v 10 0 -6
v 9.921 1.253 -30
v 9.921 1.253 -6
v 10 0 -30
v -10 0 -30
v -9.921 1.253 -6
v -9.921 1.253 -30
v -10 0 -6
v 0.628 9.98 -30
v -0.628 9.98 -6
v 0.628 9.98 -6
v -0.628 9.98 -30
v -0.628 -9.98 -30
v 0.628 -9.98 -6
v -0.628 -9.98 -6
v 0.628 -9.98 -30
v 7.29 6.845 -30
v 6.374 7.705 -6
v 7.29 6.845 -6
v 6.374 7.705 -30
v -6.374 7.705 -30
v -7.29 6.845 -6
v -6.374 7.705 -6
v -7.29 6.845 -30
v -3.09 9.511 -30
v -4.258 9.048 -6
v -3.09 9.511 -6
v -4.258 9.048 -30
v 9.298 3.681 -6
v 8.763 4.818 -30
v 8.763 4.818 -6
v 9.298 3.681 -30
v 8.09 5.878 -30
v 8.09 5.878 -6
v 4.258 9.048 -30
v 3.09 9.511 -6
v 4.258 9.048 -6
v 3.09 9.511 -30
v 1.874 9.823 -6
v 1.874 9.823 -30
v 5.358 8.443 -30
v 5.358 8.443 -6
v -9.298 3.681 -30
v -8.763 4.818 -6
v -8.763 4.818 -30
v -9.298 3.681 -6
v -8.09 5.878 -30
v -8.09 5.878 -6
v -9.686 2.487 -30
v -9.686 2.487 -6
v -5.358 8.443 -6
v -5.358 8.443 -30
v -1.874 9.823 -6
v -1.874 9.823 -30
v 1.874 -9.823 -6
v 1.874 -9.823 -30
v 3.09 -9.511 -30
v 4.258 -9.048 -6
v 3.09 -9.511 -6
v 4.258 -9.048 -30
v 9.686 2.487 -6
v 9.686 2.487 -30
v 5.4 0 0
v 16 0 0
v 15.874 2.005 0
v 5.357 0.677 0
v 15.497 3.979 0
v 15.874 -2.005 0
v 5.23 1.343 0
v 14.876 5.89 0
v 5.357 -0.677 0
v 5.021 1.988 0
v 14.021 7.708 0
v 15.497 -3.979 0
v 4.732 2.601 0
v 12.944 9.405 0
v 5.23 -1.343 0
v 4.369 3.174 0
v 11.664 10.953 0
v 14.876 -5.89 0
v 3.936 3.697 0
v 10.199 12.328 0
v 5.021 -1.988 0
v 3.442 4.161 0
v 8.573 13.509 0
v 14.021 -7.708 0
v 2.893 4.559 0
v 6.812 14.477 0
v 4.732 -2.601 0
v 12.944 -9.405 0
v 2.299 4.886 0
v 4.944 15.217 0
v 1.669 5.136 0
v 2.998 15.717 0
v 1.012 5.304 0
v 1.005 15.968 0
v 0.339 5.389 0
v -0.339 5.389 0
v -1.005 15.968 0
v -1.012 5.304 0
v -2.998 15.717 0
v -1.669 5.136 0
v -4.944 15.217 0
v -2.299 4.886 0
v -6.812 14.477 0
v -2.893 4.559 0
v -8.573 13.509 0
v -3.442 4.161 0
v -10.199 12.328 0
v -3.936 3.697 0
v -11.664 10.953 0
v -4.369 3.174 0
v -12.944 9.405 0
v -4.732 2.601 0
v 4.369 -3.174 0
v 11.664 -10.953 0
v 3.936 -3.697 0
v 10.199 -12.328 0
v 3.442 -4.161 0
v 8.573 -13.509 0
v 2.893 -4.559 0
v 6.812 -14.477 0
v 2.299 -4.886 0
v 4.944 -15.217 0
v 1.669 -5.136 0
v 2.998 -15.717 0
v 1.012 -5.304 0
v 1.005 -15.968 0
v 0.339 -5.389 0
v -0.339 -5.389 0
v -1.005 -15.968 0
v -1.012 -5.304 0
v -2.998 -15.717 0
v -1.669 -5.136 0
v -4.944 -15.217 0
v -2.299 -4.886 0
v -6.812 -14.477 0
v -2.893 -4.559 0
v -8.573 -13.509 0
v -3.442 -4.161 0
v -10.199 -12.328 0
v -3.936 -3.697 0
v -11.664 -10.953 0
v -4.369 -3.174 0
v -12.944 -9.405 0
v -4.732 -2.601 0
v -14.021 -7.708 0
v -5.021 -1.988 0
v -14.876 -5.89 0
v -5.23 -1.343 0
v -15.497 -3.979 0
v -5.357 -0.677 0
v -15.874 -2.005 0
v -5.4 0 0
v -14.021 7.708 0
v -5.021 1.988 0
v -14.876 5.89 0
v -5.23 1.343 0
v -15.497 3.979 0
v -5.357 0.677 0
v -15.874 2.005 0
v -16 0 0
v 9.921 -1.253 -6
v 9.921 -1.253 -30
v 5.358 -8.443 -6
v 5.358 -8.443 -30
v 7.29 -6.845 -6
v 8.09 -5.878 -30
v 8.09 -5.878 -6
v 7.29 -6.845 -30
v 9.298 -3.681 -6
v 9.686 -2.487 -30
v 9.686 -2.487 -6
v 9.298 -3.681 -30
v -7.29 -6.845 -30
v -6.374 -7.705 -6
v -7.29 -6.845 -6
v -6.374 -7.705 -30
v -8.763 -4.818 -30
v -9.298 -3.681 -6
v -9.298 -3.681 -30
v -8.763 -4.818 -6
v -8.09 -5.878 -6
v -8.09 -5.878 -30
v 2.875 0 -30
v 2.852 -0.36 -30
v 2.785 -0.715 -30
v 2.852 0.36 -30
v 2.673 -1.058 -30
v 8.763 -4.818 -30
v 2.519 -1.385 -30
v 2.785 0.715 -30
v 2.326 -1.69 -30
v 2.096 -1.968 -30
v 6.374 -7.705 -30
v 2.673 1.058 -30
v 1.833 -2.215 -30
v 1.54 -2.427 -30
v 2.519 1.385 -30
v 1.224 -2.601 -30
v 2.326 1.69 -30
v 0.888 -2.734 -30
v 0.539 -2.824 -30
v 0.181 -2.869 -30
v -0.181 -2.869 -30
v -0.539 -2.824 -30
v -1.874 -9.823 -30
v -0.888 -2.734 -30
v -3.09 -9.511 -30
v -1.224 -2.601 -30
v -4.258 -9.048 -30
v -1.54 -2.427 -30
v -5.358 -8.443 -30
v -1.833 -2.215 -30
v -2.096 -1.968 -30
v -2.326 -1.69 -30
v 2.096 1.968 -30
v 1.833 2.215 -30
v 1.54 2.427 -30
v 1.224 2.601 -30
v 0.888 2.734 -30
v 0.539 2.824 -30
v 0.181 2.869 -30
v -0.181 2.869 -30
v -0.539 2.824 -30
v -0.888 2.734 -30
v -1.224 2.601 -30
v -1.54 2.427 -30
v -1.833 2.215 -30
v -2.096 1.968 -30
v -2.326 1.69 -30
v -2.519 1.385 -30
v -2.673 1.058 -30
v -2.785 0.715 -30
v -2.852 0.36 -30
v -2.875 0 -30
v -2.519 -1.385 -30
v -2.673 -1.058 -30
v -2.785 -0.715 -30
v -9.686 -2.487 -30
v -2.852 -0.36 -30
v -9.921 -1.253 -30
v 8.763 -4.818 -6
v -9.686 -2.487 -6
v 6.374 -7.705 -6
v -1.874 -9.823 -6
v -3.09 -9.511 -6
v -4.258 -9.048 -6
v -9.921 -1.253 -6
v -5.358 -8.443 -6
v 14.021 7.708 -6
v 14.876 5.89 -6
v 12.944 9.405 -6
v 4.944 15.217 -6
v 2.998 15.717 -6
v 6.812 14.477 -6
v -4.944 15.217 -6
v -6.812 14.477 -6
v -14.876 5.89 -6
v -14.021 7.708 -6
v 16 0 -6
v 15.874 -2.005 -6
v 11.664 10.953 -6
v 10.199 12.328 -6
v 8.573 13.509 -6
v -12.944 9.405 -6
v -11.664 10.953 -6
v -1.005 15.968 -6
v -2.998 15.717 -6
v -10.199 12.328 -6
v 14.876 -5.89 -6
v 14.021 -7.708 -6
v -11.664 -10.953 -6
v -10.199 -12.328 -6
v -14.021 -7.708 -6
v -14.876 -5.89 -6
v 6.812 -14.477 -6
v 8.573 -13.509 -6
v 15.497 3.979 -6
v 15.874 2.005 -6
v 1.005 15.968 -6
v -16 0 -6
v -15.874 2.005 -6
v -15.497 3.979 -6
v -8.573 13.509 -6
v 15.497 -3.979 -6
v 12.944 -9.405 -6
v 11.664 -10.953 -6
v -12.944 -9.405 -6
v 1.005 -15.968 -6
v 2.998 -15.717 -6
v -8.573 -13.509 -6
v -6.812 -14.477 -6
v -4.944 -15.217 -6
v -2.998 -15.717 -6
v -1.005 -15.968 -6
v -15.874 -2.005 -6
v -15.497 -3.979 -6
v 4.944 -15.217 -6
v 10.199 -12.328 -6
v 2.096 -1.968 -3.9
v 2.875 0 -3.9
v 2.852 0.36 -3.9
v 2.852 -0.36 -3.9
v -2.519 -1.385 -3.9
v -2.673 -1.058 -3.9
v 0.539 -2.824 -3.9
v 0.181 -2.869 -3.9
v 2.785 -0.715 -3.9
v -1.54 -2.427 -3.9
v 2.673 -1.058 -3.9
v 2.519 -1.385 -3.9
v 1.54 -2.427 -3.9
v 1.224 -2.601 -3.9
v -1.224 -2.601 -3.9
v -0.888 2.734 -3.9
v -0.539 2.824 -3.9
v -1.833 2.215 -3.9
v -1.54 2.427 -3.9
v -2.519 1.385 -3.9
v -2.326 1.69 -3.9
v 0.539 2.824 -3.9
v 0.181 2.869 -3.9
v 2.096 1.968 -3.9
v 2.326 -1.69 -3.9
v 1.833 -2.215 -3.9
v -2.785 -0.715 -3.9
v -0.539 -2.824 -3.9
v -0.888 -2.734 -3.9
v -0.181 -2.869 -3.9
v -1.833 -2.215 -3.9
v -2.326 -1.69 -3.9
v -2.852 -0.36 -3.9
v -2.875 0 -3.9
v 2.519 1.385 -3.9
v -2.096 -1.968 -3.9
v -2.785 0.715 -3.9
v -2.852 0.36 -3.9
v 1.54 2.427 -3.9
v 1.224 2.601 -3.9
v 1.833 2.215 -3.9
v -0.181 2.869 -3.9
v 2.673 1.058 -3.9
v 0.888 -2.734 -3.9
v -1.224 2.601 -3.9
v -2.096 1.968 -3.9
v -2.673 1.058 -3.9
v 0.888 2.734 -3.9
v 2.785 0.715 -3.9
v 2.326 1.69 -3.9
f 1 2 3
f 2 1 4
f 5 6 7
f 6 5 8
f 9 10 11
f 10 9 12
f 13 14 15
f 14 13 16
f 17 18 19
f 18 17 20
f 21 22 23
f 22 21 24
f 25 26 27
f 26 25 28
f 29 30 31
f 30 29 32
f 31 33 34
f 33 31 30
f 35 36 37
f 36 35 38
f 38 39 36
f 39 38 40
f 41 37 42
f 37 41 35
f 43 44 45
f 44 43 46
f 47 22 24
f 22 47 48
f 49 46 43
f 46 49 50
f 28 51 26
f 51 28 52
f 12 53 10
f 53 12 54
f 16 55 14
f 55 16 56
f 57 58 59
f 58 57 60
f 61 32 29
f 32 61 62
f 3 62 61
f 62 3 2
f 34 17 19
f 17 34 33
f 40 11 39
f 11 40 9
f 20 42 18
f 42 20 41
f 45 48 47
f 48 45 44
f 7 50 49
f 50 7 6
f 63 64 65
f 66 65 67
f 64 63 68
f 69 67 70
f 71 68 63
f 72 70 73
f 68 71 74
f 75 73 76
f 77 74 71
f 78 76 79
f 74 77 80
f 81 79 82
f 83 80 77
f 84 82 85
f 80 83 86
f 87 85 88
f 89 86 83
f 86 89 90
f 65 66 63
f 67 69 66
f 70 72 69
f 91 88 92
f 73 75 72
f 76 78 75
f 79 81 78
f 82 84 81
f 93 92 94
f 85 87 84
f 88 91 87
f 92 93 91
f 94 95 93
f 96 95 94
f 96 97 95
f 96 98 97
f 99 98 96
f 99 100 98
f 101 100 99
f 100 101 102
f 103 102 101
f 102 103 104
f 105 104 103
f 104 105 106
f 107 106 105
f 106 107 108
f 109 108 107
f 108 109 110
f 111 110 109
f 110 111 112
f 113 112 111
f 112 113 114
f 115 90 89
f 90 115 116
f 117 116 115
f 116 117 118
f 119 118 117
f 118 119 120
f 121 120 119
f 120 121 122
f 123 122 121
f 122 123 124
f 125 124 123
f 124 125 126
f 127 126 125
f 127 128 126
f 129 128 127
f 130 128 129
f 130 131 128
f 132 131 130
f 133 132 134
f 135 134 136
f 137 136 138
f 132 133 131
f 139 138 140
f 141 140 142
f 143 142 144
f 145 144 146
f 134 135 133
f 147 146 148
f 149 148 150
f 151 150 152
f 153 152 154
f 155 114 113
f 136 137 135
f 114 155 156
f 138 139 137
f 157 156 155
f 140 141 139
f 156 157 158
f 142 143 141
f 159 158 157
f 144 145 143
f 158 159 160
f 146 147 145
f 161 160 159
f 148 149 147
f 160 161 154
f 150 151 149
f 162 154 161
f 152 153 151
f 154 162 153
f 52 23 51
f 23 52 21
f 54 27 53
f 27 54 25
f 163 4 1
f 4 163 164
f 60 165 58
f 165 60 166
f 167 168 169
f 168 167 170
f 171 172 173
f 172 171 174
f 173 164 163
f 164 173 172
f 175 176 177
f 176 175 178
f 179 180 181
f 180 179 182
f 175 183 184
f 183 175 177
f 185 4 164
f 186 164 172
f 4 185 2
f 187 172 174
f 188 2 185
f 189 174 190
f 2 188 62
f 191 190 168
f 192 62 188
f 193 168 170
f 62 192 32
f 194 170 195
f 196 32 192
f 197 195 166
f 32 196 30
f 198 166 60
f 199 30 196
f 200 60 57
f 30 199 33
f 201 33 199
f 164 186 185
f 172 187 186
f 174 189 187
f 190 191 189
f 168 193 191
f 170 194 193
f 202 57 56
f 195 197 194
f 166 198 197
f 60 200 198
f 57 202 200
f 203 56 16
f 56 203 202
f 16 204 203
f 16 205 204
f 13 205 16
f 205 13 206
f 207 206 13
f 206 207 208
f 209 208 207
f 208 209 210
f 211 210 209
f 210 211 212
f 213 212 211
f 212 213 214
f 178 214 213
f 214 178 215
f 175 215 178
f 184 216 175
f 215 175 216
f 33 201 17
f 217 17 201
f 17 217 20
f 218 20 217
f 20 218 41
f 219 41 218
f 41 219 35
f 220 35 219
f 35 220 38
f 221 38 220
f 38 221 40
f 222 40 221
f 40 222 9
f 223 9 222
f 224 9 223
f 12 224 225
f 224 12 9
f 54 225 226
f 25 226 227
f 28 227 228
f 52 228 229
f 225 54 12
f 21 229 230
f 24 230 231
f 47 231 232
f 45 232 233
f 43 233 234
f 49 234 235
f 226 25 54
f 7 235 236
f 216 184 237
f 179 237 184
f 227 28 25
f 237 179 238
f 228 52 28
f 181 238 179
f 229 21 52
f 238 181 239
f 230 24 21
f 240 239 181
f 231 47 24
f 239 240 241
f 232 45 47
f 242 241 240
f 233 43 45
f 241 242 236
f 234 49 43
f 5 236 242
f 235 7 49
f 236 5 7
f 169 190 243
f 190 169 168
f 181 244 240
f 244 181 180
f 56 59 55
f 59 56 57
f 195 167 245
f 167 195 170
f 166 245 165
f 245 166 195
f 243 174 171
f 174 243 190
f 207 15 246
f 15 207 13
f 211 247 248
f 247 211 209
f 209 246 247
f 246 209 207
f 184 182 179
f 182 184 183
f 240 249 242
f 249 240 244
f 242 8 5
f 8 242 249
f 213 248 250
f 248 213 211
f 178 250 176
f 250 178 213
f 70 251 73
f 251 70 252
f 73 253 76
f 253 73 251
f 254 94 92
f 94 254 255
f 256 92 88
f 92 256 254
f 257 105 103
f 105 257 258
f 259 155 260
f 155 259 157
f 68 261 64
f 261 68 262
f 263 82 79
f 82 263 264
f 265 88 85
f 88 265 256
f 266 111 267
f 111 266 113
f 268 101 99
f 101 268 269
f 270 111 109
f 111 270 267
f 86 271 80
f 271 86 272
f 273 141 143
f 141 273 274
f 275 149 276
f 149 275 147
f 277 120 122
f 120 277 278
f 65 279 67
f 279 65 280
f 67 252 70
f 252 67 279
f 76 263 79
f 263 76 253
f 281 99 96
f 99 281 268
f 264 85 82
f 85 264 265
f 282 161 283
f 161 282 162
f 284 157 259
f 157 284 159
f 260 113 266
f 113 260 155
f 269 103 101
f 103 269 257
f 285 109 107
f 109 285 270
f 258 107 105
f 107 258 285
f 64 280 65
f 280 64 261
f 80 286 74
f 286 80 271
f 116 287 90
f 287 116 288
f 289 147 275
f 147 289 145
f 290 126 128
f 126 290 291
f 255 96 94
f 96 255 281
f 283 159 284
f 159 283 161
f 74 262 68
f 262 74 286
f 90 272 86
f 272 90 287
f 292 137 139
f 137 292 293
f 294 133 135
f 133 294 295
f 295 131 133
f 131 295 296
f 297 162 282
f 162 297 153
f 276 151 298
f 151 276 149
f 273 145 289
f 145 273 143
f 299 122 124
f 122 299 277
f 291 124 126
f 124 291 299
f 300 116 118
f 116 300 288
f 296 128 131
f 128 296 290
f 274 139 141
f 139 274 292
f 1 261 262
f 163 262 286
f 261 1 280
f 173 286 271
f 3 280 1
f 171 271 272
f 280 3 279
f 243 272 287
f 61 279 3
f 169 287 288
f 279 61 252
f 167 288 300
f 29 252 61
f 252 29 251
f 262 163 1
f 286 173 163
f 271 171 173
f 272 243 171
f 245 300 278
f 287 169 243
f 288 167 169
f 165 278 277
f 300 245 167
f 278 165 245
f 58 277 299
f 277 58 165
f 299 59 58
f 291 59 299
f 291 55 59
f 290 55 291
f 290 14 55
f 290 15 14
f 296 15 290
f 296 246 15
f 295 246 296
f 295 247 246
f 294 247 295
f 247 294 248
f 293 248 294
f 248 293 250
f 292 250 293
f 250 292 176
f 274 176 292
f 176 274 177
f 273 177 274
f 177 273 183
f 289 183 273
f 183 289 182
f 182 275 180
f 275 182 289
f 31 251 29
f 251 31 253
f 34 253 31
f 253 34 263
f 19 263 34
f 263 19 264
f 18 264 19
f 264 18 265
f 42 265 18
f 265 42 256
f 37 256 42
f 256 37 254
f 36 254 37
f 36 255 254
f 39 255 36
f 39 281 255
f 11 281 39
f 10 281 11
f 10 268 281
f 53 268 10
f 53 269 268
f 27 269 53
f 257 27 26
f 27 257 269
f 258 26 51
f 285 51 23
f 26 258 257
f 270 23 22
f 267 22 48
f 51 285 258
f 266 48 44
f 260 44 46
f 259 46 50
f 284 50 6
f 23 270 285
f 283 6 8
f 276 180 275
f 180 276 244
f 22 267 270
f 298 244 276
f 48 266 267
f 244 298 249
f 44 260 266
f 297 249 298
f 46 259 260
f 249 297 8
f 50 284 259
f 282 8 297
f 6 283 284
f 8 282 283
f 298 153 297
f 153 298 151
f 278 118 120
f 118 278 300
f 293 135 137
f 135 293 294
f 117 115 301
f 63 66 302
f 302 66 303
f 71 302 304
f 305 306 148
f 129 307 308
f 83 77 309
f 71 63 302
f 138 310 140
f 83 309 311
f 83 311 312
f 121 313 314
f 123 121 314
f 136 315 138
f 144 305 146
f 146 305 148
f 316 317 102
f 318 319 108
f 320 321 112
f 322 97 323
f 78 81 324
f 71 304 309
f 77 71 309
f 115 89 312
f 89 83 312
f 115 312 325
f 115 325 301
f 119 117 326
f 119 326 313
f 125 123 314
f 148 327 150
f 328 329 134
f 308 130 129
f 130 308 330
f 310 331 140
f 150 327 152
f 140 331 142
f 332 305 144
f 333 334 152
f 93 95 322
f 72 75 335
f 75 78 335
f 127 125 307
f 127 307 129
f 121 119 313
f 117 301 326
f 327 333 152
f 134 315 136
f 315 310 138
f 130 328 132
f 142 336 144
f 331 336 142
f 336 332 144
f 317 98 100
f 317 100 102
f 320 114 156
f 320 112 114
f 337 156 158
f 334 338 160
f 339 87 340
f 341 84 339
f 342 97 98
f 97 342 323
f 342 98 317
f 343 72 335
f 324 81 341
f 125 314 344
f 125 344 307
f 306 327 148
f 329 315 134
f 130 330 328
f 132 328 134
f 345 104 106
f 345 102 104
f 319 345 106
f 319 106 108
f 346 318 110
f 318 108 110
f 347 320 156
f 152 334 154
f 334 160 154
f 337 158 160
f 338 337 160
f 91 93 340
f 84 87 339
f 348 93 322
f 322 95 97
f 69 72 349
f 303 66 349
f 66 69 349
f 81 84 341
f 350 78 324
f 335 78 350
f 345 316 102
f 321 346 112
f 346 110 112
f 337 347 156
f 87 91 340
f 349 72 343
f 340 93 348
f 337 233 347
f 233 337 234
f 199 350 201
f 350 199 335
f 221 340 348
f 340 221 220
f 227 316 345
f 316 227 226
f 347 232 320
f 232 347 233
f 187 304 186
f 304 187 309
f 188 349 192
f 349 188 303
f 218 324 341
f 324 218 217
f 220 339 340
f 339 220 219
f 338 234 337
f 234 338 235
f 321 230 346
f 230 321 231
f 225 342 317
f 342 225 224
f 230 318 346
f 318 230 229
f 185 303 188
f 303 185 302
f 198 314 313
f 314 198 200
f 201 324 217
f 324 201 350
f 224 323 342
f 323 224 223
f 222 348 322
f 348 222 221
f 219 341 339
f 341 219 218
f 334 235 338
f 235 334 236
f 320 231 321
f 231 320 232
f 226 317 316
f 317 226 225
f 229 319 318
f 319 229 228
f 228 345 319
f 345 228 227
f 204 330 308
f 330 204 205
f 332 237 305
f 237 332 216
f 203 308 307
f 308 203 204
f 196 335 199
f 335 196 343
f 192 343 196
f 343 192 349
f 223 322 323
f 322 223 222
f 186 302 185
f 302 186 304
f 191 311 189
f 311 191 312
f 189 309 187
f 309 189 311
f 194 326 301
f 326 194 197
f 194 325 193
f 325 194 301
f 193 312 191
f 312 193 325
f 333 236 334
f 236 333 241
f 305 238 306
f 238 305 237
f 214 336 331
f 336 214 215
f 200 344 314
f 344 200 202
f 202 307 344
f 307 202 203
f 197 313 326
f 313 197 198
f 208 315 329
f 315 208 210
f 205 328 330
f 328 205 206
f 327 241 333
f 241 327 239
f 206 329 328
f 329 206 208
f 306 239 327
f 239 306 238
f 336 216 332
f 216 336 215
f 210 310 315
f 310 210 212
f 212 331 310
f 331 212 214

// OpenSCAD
$fn = 50;


difference() {
	union() {
		translate(v = [0, 0, -30.0000000000]) {
			cylinder(h = 30, r = 10.0000000000);
		}
		translate(v = [0, 0, -6.0000000000]) {
			cylinder(h = 6, r = 16.0000000000);
		}
	}
	union() {
		translate(v = [0, 0, 0]) {
			rotate(a = [0, 0, 0]) {
				difference() {
					union() {
						#translate(v = [0, 0, -30.0000000000]) {
							cylinder(h = 30, r = 2.6000000000);
						}
						#translate(v = [0, 0, -3.9000000000]) {
							cylinder(h = 3.9000000000, r1 = 2.8750000000, r2 = 5.4000000000);
						}
						#translate(v = [0, 0, -30.0000000000]) {
							cylinder(h = 30, r = 2.8750000000);
						}
						#translate(v = [0, 0, -30.0000000000]) {
							cylinder(h = 30, r = 2.6000000000);
						}
					}
					union();
				}
			}
		}
	}
}
